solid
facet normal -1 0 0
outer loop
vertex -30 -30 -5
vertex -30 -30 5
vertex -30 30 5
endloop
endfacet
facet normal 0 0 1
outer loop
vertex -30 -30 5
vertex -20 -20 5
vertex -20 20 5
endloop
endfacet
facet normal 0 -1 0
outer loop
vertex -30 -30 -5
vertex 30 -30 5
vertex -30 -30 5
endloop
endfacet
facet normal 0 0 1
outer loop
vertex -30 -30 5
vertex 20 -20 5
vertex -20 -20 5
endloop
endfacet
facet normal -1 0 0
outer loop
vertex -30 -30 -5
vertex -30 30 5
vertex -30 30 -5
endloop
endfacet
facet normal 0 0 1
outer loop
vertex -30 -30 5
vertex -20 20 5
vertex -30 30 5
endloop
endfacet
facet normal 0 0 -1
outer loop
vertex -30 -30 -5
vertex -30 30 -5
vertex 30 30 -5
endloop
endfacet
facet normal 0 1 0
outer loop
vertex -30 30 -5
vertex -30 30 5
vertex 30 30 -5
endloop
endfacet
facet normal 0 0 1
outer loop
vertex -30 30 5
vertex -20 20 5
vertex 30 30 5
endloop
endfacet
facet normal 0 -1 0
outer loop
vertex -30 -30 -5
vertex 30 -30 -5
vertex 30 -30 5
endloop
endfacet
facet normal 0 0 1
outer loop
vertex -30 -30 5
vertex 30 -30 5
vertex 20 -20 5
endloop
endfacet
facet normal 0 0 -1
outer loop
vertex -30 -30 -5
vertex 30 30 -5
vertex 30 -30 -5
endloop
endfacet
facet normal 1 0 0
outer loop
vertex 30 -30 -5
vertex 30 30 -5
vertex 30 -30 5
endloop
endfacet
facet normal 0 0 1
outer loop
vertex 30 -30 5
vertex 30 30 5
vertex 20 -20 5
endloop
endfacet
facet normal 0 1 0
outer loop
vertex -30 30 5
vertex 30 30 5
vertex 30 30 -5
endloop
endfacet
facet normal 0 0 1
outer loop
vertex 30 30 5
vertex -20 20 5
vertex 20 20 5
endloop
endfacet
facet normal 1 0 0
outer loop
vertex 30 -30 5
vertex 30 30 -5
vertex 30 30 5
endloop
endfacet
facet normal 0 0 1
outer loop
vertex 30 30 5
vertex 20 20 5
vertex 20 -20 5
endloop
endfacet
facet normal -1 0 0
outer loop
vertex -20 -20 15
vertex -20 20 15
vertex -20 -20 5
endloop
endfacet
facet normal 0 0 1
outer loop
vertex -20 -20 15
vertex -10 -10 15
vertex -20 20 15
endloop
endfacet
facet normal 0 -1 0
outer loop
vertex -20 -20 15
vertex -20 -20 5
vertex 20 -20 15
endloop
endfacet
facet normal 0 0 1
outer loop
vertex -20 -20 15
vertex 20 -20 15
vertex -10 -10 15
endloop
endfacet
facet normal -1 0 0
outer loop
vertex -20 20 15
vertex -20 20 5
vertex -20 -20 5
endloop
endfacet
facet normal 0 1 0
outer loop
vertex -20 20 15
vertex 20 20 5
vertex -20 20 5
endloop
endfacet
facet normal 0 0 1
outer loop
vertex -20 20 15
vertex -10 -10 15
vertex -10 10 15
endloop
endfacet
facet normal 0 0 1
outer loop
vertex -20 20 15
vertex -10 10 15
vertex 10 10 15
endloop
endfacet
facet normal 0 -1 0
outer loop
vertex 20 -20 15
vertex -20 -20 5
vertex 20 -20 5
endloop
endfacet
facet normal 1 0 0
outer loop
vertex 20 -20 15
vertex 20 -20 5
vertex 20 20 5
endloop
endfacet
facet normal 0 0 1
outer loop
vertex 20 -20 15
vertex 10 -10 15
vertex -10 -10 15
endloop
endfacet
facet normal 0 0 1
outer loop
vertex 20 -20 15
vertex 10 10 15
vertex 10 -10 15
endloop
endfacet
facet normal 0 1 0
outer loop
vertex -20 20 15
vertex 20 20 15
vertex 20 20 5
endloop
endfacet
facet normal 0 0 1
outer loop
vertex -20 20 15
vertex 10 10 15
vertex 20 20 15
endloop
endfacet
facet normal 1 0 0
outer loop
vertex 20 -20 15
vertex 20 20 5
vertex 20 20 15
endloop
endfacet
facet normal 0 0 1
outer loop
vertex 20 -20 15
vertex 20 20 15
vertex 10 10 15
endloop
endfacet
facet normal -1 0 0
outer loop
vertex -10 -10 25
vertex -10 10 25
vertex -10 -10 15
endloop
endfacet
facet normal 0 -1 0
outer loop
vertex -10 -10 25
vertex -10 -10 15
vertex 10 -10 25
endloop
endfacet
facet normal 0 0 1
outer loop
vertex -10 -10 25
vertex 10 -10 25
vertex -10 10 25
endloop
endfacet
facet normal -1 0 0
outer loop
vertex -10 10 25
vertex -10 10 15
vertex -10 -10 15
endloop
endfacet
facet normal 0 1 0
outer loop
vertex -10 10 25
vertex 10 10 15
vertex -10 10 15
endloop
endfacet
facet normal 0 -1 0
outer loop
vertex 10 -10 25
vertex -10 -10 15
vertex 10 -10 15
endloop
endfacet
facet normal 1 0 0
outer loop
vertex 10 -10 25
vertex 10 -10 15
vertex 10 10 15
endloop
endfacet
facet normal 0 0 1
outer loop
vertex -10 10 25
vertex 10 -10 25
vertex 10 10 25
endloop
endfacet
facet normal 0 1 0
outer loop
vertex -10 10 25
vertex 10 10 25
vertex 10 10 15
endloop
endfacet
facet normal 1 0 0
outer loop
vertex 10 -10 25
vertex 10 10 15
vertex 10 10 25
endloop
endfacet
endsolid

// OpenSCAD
union() {
    translate([0, 0, 0])
        cube([60, 60, 10], center = true);

    translate([0, 0, 10])
        cube([40, 40, 10], center = true);

    translate([0, 0, 20])
        cube([20, 20, 10], center = true);
}
